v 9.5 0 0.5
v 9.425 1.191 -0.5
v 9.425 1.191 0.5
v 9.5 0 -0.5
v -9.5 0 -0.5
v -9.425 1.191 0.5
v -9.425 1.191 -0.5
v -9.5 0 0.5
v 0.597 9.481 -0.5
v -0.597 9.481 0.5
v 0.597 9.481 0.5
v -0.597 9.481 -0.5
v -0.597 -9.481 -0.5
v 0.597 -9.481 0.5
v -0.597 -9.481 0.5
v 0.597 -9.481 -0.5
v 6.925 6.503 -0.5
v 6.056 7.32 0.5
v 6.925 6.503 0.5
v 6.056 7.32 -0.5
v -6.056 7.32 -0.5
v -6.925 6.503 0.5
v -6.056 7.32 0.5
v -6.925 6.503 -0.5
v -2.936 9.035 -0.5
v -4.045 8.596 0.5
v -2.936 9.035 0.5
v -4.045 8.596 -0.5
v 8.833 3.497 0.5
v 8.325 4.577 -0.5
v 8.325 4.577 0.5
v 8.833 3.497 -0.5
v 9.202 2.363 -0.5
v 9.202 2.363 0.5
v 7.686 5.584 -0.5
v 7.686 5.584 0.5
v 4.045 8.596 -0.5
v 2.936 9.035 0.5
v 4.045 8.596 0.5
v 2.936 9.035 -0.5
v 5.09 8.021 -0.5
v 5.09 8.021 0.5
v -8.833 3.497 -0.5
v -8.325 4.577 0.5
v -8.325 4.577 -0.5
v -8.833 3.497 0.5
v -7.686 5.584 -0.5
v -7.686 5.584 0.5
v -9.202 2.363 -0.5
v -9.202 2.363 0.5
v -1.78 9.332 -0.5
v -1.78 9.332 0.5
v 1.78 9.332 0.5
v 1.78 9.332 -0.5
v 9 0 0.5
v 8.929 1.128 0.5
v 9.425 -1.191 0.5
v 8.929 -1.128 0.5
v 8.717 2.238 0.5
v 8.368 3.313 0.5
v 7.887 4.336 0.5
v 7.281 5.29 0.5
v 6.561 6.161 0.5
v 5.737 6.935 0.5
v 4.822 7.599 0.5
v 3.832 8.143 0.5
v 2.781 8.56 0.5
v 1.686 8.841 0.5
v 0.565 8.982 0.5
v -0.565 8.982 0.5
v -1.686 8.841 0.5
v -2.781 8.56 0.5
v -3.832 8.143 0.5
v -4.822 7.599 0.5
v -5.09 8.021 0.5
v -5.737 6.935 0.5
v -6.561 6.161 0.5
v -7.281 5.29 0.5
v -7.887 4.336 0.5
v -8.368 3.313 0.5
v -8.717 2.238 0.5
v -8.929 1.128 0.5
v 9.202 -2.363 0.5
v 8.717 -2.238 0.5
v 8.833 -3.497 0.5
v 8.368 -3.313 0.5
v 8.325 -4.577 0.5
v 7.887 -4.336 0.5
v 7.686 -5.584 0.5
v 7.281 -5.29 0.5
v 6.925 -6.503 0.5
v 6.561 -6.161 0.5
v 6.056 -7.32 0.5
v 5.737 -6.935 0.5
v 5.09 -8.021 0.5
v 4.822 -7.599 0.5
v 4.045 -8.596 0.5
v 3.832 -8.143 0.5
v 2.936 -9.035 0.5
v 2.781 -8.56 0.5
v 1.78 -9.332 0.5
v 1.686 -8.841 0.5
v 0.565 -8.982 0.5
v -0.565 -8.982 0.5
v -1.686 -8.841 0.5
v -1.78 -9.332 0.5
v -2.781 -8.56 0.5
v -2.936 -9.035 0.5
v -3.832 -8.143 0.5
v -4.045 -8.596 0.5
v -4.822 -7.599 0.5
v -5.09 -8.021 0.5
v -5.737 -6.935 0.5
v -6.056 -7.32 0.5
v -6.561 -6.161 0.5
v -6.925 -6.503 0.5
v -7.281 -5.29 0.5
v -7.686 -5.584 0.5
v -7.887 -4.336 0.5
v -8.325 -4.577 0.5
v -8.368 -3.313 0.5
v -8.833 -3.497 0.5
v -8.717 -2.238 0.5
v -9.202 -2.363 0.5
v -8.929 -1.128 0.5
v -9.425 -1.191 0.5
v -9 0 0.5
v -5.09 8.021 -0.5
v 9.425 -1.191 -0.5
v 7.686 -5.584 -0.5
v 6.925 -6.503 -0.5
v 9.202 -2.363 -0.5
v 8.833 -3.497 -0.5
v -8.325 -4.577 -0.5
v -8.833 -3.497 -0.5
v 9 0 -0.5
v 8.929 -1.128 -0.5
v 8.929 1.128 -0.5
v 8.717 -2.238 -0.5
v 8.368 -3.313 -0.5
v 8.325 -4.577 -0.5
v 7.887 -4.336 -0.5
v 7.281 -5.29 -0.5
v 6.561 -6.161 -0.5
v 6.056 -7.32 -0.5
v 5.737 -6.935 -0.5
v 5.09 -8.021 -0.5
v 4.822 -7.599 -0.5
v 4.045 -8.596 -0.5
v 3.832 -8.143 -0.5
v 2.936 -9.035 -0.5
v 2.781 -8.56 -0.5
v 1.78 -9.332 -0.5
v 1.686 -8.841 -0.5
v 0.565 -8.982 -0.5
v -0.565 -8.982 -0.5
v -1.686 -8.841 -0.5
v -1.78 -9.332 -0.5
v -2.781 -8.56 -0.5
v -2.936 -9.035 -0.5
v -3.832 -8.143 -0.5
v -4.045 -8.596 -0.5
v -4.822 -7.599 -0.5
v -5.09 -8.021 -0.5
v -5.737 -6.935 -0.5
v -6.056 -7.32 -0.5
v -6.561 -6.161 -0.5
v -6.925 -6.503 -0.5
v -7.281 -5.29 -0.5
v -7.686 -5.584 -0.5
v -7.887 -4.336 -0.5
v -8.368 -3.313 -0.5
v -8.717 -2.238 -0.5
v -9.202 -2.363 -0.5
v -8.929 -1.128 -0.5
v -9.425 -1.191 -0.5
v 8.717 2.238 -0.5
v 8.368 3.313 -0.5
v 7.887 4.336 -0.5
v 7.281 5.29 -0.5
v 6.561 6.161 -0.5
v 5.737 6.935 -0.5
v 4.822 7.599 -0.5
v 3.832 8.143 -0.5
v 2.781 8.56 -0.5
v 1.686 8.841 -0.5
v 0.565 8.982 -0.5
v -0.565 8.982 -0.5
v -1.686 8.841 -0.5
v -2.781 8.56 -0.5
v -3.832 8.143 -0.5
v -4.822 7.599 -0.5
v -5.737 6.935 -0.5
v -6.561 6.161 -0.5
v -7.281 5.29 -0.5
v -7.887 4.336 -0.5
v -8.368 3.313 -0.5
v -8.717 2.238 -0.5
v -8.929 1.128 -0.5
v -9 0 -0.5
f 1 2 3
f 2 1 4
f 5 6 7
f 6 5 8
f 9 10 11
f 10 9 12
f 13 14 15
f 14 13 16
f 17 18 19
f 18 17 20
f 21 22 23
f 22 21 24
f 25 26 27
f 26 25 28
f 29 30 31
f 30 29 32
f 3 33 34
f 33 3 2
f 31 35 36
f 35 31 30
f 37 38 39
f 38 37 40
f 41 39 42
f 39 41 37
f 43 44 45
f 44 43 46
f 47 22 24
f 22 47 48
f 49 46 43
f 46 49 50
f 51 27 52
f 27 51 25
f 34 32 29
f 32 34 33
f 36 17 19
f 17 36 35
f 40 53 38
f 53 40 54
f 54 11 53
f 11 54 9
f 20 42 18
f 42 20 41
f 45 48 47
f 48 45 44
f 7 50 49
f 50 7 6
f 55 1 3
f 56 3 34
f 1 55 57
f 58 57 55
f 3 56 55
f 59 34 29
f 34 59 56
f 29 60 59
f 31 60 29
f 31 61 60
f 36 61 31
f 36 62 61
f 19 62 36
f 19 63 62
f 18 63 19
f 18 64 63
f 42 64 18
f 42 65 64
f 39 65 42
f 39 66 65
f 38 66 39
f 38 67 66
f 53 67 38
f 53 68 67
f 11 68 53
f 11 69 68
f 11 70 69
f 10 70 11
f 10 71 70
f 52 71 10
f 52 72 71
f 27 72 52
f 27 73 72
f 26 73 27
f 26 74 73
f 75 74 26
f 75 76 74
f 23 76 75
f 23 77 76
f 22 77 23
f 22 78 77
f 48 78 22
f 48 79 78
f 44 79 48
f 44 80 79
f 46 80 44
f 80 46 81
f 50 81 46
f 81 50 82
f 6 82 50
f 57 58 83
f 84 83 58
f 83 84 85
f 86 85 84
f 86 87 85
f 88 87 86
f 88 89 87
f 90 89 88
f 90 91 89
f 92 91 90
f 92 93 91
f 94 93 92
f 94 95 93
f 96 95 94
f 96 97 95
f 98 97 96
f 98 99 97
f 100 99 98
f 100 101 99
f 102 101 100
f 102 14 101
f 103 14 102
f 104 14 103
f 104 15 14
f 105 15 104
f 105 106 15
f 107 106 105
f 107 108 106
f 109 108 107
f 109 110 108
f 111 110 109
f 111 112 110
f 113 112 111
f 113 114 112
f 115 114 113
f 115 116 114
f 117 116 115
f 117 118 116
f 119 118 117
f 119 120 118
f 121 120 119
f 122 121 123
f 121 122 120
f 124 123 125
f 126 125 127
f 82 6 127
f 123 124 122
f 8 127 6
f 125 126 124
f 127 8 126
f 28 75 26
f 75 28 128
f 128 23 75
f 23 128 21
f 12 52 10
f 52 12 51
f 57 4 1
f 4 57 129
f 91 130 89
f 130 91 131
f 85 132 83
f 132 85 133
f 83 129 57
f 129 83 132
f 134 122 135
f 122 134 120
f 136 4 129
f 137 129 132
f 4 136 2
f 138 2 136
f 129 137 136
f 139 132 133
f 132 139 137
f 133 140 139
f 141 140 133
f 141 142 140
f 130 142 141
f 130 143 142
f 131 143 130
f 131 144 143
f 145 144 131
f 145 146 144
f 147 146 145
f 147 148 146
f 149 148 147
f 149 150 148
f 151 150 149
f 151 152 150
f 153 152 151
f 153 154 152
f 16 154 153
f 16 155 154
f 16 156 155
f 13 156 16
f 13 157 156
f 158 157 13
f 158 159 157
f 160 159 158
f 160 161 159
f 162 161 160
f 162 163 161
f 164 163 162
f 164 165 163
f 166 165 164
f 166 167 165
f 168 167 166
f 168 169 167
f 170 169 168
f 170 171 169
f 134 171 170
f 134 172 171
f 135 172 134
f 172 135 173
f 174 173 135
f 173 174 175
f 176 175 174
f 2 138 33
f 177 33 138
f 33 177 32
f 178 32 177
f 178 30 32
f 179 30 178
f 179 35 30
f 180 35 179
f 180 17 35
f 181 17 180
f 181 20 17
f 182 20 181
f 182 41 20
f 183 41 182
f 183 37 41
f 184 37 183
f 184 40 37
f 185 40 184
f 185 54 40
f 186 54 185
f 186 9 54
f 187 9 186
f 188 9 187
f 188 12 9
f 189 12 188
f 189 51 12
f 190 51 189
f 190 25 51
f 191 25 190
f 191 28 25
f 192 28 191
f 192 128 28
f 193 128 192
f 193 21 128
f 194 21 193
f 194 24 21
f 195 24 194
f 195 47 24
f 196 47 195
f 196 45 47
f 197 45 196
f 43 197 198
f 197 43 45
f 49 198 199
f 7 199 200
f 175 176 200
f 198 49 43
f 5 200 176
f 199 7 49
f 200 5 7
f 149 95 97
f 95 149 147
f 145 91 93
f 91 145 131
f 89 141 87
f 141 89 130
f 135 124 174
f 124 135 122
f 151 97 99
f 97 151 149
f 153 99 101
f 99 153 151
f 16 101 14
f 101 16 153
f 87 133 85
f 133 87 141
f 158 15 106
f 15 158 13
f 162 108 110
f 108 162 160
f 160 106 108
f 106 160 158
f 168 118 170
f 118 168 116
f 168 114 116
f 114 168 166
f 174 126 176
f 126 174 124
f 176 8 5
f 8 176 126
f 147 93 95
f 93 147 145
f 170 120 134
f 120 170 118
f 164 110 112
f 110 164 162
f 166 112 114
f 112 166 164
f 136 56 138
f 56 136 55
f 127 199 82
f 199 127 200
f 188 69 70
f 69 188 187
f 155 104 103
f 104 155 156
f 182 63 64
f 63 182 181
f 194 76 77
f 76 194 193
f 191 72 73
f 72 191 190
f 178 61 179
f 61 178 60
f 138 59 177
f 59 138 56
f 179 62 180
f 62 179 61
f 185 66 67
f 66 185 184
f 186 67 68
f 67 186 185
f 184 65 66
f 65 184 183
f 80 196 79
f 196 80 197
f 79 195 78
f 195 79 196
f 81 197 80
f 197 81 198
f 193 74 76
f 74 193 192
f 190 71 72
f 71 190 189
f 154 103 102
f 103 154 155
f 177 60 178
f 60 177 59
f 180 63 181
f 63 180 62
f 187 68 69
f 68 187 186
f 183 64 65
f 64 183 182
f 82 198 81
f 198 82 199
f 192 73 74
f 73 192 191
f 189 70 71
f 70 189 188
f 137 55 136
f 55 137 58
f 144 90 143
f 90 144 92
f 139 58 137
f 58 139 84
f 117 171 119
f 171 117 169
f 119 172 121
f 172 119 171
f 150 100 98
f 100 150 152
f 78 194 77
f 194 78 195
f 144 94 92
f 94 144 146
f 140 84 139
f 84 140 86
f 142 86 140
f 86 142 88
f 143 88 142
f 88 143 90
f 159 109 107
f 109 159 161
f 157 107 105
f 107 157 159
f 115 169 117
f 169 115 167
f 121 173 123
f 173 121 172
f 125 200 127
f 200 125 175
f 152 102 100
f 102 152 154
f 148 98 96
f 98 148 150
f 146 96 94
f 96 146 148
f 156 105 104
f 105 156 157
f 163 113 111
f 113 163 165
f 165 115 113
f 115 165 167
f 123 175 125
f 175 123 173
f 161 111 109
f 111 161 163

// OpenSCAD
$fn = 50;


difference() {
	union() {
		translate(v = [0, 0, -0.5000000000]) {
			cylinder(h = 1, r = 9.5000000000);
		}
	}
	union() {
		translate(v = [0, 0, -100.0000000000]) {
			cylinder(h = 200, r = 9);
		}
	}
}
